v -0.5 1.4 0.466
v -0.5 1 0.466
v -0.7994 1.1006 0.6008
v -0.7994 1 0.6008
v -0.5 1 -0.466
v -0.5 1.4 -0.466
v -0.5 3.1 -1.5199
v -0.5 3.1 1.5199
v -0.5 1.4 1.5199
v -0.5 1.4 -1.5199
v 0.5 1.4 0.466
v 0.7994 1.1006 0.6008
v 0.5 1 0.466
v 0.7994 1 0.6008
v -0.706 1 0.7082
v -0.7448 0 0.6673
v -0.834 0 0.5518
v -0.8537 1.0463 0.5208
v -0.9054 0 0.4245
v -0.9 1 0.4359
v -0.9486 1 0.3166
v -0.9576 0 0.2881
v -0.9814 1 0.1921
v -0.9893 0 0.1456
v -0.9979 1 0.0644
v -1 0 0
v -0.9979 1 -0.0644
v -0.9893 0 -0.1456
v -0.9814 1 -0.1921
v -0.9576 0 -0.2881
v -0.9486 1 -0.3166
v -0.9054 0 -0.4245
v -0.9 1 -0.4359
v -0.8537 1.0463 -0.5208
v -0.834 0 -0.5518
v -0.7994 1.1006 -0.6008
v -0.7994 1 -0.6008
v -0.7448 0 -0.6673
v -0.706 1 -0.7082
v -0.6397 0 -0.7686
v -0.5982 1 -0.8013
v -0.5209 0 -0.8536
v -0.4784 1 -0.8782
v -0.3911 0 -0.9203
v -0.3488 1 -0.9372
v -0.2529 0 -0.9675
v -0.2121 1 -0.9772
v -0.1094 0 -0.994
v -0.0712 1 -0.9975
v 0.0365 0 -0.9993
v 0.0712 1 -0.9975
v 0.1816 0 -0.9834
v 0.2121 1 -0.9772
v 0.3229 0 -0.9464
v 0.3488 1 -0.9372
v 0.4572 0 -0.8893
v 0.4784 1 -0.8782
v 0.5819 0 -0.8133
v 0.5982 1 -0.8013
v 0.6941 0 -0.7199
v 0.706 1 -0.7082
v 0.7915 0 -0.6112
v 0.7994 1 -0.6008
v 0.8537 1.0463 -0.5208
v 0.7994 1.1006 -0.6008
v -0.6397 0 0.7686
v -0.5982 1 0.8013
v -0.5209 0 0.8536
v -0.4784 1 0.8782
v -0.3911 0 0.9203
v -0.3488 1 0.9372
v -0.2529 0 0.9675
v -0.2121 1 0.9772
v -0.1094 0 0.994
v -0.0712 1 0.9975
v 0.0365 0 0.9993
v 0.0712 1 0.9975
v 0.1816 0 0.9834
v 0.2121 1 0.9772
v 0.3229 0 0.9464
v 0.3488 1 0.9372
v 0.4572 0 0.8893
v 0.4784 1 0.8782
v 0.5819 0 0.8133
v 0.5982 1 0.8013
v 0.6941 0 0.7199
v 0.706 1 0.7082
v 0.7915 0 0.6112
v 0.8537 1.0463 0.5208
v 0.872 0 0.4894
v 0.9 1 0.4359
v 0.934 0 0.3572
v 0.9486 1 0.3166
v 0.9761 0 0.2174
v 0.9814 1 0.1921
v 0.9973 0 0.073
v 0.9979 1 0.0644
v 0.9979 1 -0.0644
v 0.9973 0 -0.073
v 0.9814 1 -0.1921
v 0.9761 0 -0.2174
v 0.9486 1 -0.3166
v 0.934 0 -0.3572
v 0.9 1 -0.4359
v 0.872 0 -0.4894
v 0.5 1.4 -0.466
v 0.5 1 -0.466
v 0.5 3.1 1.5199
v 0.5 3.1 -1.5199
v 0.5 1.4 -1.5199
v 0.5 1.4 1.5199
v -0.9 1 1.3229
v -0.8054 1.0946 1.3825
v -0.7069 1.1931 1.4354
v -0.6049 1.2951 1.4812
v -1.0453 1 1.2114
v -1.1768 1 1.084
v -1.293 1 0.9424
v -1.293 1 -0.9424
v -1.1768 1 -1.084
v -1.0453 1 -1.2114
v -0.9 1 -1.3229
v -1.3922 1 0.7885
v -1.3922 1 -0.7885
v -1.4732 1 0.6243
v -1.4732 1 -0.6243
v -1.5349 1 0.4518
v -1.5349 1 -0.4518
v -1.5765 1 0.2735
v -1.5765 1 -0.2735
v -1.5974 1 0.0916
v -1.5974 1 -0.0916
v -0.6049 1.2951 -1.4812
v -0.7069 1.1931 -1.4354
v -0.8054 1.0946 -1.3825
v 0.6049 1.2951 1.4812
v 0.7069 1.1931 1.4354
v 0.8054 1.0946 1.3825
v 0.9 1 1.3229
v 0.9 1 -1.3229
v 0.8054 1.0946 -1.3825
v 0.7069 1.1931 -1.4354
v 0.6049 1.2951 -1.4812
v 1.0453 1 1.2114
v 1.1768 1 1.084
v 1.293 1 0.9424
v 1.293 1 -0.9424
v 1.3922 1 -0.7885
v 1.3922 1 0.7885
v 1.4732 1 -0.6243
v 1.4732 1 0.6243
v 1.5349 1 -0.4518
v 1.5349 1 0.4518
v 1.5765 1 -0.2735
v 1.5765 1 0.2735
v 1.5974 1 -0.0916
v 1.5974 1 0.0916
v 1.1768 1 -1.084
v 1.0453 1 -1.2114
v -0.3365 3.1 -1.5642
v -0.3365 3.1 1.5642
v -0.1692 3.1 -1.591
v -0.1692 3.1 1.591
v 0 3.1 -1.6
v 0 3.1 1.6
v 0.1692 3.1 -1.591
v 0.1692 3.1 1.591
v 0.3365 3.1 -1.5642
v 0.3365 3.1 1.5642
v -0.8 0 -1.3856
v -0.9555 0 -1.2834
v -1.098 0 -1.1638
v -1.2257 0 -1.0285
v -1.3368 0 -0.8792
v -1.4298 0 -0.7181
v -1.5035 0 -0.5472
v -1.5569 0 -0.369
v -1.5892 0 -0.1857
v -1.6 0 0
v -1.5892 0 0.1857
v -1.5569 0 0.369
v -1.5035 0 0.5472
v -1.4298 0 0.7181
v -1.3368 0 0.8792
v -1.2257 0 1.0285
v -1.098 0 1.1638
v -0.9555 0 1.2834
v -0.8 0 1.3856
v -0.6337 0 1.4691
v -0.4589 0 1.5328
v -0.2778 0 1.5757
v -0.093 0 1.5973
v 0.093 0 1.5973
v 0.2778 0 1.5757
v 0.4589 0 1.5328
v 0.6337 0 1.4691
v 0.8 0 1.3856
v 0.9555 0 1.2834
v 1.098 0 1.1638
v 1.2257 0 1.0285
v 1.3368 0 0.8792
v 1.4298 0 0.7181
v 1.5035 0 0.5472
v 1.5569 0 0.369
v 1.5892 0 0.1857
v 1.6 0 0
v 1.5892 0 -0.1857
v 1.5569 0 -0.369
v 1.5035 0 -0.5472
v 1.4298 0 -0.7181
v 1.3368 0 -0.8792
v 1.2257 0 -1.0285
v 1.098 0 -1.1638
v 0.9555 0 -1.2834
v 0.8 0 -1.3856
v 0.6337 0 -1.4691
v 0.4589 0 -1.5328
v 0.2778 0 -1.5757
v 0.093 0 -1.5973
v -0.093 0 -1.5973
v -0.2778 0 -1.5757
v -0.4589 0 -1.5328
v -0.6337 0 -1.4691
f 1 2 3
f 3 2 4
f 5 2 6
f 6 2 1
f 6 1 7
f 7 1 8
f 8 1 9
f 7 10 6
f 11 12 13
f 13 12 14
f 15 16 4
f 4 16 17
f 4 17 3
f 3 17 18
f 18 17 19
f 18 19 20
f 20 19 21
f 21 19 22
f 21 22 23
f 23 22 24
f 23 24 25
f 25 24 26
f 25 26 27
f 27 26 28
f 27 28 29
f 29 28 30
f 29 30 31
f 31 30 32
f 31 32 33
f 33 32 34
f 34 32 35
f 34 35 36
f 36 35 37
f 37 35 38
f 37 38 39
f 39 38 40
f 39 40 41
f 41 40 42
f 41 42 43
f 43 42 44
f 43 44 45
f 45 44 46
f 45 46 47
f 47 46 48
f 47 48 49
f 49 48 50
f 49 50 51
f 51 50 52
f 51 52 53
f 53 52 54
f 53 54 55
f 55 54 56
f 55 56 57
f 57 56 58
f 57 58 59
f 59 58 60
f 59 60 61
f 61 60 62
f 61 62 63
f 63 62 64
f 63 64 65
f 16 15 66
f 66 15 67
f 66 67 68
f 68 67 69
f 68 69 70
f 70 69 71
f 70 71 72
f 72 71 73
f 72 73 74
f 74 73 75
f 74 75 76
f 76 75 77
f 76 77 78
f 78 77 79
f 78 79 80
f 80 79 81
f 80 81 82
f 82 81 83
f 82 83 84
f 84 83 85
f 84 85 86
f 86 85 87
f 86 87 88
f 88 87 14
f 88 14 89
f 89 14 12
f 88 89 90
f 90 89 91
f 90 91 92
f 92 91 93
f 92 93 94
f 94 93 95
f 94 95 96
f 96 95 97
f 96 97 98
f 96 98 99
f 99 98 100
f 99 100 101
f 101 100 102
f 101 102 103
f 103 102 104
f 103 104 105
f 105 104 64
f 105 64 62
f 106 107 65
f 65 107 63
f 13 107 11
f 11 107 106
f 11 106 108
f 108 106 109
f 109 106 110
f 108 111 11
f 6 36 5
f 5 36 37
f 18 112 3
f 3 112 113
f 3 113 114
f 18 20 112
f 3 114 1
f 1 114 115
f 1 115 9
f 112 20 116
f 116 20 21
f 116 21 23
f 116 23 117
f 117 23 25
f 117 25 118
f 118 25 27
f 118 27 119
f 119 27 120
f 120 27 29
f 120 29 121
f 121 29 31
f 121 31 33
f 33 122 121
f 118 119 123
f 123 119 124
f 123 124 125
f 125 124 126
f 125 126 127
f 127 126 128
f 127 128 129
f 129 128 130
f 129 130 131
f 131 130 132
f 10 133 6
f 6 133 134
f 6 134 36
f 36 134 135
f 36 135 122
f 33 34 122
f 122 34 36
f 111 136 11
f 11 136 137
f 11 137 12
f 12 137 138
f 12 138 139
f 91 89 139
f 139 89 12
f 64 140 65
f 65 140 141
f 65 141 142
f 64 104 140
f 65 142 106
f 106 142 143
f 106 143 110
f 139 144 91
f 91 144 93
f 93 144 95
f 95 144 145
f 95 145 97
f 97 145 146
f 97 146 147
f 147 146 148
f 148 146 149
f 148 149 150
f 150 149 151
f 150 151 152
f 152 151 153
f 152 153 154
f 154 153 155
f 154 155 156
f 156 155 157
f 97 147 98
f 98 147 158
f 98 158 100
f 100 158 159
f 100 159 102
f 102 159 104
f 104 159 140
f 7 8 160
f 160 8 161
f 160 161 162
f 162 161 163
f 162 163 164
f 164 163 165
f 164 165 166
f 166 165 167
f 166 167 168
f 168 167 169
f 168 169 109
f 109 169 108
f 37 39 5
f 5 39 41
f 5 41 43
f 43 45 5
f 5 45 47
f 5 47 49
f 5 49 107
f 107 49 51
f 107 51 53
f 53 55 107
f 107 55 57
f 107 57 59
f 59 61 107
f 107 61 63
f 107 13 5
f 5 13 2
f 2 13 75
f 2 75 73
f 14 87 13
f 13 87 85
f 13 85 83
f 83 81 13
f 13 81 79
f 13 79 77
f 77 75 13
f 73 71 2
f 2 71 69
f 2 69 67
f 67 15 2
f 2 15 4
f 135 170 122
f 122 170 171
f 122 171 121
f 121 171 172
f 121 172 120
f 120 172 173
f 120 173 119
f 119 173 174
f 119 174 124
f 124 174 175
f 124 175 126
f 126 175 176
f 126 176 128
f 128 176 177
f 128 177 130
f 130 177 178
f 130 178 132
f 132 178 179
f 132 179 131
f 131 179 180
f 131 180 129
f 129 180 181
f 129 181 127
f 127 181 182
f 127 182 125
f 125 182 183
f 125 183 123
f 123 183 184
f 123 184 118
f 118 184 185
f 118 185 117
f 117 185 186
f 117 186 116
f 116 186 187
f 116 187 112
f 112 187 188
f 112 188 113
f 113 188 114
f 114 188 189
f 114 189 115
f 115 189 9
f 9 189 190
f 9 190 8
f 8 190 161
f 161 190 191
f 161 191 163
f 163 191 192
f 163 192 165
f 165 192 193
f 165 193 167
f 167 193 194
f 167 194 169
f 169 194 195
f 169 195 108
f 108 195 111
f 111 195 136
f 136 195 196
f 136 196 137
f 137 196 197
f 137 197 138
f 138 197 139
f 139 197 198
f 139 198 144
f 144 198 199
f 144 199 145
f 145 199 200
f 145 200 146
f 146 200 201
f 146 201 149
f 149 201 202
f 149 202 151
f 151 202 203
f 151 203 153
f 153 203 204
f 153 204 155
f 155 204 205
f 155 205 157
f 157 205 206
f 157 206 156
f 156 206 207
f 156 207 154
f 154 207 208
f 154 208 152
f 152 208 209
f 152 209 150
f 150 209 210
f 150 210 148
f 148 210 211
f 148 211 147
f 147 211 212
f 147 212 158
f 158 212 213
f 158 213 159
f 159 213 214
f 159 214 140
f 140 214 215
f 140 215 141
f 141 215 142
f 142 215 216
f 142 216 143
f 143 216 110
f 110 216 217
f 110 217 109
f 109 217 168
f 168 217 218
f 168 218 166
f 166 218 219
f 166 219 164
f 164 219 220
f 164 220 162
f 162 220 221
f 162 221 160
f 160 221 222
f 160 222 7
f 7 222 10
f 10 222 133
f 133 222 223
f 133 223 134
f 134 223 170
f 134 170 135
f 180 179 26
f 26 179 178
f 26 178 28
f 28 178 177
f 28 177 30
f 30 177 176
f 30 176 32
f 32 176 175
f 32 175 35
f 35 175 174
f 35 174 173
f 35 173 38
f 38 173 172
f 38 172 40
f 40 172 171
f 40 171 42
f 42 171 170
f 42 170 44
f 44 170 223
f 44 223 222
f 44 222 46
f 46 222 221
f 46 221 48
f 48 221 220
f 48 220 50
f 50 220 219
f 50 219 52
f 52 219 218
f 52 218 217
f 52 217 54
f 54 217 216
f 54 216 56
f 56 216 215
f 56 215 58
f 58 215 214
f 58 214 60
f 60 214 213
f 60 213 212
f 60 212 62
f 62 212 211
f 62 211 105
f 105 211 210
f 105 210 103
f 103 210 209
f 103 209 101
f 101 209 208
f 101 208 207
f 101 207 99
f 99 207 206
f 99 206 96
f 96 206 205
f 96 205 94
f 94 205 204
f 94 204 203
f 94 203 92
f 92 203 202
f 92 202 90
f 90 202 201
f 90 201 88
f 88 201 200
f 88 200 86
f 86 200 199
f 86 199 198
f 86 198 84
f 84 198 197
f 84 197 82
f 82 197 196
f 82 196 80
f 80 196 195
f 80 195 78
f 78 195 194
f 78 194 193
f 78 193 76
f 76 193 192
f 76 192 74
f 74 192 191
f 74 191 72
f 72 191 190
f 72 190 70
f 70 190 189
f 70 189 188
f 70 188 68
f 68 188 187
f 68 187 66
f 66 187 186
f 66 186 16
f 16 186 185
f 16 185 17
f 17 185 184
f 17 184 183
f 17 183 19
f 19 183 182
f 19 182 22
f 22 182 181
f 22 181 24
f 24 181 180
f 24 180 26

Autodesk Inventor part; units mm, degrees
ref_plane "YZ Plane" through (0, 0, 0) normal (1, 0, 0) x (0, 1, 0)
ref_plane "XZ Plane" through (0, 0, 0) normal (0, 1, 0) x (-1, 0, 0)
ref_plane "XY Plane" through (0, 0, 0) normal (0, 0, 1) x (1, 0, 0)
sketch "스케치2" plane through (0, 0, 0) normal (0, 1, 0) x (-1, 0, 0)
  circle A0 centre (0, 0) radius 1.6
  circle A1 centre (0, 0) radius 1
  dimension "d0" = 3.2
  dimension "d6" = 2
extrude "돌출1" add sketch "스케치2" along normal blind 1
sketch "스케치4" plane through (0, 1, 0) normal (0, 1, 0) x (1, 0, 0)
  line L0 (0.5, -1.55) -> (-0.5, -1.55)
  line L1 (-0.5, -1.55) -> (-0.5, 1.55)
  line L2 (-0.5, 1.55) -> (0.5, 1.55)
  line L3 (0.5, 1.55) -> (0.5, -1.55)
  line L4 (0.5, -1.55) -> (-0.5, 1.55) construction
  line L5 (-0.5, -1.55) -> (0.5, 1.55) construction
  circle A0 centre (0, 0) radius 1.6 projected
  point P0 (0.5, 1.5199)
  point P1 (-0.5, 1.5199)
  point P2 (-0.5, -1.5199)
  point P3 (0.5, -1.5199)
  dimension "d7" = 1
extrude "돌출3" add sketch "스케치4" along normal blind 2.1 contours A0 L0 | L0 A0 L1 L2 L3 | L2 A0
chamfer "모따기1" distance 0.4 angle 45 4 edges at (0.5, 1, 1.1929) (0.5, 1, -1.1929) (-0.5, 1, -1.1929) (-0.5, 1, 1.1929)
chamfer "모따기2" distance 0.4 angle 45 4 edges at (-0.5, 1.2, -0.866) (-0.5, 1.2, 0.866) (0.5, 1.2, 0.866) (0.5, 1.2, -0.866)
properties part number "bone_attachment_3.2mm_test"
